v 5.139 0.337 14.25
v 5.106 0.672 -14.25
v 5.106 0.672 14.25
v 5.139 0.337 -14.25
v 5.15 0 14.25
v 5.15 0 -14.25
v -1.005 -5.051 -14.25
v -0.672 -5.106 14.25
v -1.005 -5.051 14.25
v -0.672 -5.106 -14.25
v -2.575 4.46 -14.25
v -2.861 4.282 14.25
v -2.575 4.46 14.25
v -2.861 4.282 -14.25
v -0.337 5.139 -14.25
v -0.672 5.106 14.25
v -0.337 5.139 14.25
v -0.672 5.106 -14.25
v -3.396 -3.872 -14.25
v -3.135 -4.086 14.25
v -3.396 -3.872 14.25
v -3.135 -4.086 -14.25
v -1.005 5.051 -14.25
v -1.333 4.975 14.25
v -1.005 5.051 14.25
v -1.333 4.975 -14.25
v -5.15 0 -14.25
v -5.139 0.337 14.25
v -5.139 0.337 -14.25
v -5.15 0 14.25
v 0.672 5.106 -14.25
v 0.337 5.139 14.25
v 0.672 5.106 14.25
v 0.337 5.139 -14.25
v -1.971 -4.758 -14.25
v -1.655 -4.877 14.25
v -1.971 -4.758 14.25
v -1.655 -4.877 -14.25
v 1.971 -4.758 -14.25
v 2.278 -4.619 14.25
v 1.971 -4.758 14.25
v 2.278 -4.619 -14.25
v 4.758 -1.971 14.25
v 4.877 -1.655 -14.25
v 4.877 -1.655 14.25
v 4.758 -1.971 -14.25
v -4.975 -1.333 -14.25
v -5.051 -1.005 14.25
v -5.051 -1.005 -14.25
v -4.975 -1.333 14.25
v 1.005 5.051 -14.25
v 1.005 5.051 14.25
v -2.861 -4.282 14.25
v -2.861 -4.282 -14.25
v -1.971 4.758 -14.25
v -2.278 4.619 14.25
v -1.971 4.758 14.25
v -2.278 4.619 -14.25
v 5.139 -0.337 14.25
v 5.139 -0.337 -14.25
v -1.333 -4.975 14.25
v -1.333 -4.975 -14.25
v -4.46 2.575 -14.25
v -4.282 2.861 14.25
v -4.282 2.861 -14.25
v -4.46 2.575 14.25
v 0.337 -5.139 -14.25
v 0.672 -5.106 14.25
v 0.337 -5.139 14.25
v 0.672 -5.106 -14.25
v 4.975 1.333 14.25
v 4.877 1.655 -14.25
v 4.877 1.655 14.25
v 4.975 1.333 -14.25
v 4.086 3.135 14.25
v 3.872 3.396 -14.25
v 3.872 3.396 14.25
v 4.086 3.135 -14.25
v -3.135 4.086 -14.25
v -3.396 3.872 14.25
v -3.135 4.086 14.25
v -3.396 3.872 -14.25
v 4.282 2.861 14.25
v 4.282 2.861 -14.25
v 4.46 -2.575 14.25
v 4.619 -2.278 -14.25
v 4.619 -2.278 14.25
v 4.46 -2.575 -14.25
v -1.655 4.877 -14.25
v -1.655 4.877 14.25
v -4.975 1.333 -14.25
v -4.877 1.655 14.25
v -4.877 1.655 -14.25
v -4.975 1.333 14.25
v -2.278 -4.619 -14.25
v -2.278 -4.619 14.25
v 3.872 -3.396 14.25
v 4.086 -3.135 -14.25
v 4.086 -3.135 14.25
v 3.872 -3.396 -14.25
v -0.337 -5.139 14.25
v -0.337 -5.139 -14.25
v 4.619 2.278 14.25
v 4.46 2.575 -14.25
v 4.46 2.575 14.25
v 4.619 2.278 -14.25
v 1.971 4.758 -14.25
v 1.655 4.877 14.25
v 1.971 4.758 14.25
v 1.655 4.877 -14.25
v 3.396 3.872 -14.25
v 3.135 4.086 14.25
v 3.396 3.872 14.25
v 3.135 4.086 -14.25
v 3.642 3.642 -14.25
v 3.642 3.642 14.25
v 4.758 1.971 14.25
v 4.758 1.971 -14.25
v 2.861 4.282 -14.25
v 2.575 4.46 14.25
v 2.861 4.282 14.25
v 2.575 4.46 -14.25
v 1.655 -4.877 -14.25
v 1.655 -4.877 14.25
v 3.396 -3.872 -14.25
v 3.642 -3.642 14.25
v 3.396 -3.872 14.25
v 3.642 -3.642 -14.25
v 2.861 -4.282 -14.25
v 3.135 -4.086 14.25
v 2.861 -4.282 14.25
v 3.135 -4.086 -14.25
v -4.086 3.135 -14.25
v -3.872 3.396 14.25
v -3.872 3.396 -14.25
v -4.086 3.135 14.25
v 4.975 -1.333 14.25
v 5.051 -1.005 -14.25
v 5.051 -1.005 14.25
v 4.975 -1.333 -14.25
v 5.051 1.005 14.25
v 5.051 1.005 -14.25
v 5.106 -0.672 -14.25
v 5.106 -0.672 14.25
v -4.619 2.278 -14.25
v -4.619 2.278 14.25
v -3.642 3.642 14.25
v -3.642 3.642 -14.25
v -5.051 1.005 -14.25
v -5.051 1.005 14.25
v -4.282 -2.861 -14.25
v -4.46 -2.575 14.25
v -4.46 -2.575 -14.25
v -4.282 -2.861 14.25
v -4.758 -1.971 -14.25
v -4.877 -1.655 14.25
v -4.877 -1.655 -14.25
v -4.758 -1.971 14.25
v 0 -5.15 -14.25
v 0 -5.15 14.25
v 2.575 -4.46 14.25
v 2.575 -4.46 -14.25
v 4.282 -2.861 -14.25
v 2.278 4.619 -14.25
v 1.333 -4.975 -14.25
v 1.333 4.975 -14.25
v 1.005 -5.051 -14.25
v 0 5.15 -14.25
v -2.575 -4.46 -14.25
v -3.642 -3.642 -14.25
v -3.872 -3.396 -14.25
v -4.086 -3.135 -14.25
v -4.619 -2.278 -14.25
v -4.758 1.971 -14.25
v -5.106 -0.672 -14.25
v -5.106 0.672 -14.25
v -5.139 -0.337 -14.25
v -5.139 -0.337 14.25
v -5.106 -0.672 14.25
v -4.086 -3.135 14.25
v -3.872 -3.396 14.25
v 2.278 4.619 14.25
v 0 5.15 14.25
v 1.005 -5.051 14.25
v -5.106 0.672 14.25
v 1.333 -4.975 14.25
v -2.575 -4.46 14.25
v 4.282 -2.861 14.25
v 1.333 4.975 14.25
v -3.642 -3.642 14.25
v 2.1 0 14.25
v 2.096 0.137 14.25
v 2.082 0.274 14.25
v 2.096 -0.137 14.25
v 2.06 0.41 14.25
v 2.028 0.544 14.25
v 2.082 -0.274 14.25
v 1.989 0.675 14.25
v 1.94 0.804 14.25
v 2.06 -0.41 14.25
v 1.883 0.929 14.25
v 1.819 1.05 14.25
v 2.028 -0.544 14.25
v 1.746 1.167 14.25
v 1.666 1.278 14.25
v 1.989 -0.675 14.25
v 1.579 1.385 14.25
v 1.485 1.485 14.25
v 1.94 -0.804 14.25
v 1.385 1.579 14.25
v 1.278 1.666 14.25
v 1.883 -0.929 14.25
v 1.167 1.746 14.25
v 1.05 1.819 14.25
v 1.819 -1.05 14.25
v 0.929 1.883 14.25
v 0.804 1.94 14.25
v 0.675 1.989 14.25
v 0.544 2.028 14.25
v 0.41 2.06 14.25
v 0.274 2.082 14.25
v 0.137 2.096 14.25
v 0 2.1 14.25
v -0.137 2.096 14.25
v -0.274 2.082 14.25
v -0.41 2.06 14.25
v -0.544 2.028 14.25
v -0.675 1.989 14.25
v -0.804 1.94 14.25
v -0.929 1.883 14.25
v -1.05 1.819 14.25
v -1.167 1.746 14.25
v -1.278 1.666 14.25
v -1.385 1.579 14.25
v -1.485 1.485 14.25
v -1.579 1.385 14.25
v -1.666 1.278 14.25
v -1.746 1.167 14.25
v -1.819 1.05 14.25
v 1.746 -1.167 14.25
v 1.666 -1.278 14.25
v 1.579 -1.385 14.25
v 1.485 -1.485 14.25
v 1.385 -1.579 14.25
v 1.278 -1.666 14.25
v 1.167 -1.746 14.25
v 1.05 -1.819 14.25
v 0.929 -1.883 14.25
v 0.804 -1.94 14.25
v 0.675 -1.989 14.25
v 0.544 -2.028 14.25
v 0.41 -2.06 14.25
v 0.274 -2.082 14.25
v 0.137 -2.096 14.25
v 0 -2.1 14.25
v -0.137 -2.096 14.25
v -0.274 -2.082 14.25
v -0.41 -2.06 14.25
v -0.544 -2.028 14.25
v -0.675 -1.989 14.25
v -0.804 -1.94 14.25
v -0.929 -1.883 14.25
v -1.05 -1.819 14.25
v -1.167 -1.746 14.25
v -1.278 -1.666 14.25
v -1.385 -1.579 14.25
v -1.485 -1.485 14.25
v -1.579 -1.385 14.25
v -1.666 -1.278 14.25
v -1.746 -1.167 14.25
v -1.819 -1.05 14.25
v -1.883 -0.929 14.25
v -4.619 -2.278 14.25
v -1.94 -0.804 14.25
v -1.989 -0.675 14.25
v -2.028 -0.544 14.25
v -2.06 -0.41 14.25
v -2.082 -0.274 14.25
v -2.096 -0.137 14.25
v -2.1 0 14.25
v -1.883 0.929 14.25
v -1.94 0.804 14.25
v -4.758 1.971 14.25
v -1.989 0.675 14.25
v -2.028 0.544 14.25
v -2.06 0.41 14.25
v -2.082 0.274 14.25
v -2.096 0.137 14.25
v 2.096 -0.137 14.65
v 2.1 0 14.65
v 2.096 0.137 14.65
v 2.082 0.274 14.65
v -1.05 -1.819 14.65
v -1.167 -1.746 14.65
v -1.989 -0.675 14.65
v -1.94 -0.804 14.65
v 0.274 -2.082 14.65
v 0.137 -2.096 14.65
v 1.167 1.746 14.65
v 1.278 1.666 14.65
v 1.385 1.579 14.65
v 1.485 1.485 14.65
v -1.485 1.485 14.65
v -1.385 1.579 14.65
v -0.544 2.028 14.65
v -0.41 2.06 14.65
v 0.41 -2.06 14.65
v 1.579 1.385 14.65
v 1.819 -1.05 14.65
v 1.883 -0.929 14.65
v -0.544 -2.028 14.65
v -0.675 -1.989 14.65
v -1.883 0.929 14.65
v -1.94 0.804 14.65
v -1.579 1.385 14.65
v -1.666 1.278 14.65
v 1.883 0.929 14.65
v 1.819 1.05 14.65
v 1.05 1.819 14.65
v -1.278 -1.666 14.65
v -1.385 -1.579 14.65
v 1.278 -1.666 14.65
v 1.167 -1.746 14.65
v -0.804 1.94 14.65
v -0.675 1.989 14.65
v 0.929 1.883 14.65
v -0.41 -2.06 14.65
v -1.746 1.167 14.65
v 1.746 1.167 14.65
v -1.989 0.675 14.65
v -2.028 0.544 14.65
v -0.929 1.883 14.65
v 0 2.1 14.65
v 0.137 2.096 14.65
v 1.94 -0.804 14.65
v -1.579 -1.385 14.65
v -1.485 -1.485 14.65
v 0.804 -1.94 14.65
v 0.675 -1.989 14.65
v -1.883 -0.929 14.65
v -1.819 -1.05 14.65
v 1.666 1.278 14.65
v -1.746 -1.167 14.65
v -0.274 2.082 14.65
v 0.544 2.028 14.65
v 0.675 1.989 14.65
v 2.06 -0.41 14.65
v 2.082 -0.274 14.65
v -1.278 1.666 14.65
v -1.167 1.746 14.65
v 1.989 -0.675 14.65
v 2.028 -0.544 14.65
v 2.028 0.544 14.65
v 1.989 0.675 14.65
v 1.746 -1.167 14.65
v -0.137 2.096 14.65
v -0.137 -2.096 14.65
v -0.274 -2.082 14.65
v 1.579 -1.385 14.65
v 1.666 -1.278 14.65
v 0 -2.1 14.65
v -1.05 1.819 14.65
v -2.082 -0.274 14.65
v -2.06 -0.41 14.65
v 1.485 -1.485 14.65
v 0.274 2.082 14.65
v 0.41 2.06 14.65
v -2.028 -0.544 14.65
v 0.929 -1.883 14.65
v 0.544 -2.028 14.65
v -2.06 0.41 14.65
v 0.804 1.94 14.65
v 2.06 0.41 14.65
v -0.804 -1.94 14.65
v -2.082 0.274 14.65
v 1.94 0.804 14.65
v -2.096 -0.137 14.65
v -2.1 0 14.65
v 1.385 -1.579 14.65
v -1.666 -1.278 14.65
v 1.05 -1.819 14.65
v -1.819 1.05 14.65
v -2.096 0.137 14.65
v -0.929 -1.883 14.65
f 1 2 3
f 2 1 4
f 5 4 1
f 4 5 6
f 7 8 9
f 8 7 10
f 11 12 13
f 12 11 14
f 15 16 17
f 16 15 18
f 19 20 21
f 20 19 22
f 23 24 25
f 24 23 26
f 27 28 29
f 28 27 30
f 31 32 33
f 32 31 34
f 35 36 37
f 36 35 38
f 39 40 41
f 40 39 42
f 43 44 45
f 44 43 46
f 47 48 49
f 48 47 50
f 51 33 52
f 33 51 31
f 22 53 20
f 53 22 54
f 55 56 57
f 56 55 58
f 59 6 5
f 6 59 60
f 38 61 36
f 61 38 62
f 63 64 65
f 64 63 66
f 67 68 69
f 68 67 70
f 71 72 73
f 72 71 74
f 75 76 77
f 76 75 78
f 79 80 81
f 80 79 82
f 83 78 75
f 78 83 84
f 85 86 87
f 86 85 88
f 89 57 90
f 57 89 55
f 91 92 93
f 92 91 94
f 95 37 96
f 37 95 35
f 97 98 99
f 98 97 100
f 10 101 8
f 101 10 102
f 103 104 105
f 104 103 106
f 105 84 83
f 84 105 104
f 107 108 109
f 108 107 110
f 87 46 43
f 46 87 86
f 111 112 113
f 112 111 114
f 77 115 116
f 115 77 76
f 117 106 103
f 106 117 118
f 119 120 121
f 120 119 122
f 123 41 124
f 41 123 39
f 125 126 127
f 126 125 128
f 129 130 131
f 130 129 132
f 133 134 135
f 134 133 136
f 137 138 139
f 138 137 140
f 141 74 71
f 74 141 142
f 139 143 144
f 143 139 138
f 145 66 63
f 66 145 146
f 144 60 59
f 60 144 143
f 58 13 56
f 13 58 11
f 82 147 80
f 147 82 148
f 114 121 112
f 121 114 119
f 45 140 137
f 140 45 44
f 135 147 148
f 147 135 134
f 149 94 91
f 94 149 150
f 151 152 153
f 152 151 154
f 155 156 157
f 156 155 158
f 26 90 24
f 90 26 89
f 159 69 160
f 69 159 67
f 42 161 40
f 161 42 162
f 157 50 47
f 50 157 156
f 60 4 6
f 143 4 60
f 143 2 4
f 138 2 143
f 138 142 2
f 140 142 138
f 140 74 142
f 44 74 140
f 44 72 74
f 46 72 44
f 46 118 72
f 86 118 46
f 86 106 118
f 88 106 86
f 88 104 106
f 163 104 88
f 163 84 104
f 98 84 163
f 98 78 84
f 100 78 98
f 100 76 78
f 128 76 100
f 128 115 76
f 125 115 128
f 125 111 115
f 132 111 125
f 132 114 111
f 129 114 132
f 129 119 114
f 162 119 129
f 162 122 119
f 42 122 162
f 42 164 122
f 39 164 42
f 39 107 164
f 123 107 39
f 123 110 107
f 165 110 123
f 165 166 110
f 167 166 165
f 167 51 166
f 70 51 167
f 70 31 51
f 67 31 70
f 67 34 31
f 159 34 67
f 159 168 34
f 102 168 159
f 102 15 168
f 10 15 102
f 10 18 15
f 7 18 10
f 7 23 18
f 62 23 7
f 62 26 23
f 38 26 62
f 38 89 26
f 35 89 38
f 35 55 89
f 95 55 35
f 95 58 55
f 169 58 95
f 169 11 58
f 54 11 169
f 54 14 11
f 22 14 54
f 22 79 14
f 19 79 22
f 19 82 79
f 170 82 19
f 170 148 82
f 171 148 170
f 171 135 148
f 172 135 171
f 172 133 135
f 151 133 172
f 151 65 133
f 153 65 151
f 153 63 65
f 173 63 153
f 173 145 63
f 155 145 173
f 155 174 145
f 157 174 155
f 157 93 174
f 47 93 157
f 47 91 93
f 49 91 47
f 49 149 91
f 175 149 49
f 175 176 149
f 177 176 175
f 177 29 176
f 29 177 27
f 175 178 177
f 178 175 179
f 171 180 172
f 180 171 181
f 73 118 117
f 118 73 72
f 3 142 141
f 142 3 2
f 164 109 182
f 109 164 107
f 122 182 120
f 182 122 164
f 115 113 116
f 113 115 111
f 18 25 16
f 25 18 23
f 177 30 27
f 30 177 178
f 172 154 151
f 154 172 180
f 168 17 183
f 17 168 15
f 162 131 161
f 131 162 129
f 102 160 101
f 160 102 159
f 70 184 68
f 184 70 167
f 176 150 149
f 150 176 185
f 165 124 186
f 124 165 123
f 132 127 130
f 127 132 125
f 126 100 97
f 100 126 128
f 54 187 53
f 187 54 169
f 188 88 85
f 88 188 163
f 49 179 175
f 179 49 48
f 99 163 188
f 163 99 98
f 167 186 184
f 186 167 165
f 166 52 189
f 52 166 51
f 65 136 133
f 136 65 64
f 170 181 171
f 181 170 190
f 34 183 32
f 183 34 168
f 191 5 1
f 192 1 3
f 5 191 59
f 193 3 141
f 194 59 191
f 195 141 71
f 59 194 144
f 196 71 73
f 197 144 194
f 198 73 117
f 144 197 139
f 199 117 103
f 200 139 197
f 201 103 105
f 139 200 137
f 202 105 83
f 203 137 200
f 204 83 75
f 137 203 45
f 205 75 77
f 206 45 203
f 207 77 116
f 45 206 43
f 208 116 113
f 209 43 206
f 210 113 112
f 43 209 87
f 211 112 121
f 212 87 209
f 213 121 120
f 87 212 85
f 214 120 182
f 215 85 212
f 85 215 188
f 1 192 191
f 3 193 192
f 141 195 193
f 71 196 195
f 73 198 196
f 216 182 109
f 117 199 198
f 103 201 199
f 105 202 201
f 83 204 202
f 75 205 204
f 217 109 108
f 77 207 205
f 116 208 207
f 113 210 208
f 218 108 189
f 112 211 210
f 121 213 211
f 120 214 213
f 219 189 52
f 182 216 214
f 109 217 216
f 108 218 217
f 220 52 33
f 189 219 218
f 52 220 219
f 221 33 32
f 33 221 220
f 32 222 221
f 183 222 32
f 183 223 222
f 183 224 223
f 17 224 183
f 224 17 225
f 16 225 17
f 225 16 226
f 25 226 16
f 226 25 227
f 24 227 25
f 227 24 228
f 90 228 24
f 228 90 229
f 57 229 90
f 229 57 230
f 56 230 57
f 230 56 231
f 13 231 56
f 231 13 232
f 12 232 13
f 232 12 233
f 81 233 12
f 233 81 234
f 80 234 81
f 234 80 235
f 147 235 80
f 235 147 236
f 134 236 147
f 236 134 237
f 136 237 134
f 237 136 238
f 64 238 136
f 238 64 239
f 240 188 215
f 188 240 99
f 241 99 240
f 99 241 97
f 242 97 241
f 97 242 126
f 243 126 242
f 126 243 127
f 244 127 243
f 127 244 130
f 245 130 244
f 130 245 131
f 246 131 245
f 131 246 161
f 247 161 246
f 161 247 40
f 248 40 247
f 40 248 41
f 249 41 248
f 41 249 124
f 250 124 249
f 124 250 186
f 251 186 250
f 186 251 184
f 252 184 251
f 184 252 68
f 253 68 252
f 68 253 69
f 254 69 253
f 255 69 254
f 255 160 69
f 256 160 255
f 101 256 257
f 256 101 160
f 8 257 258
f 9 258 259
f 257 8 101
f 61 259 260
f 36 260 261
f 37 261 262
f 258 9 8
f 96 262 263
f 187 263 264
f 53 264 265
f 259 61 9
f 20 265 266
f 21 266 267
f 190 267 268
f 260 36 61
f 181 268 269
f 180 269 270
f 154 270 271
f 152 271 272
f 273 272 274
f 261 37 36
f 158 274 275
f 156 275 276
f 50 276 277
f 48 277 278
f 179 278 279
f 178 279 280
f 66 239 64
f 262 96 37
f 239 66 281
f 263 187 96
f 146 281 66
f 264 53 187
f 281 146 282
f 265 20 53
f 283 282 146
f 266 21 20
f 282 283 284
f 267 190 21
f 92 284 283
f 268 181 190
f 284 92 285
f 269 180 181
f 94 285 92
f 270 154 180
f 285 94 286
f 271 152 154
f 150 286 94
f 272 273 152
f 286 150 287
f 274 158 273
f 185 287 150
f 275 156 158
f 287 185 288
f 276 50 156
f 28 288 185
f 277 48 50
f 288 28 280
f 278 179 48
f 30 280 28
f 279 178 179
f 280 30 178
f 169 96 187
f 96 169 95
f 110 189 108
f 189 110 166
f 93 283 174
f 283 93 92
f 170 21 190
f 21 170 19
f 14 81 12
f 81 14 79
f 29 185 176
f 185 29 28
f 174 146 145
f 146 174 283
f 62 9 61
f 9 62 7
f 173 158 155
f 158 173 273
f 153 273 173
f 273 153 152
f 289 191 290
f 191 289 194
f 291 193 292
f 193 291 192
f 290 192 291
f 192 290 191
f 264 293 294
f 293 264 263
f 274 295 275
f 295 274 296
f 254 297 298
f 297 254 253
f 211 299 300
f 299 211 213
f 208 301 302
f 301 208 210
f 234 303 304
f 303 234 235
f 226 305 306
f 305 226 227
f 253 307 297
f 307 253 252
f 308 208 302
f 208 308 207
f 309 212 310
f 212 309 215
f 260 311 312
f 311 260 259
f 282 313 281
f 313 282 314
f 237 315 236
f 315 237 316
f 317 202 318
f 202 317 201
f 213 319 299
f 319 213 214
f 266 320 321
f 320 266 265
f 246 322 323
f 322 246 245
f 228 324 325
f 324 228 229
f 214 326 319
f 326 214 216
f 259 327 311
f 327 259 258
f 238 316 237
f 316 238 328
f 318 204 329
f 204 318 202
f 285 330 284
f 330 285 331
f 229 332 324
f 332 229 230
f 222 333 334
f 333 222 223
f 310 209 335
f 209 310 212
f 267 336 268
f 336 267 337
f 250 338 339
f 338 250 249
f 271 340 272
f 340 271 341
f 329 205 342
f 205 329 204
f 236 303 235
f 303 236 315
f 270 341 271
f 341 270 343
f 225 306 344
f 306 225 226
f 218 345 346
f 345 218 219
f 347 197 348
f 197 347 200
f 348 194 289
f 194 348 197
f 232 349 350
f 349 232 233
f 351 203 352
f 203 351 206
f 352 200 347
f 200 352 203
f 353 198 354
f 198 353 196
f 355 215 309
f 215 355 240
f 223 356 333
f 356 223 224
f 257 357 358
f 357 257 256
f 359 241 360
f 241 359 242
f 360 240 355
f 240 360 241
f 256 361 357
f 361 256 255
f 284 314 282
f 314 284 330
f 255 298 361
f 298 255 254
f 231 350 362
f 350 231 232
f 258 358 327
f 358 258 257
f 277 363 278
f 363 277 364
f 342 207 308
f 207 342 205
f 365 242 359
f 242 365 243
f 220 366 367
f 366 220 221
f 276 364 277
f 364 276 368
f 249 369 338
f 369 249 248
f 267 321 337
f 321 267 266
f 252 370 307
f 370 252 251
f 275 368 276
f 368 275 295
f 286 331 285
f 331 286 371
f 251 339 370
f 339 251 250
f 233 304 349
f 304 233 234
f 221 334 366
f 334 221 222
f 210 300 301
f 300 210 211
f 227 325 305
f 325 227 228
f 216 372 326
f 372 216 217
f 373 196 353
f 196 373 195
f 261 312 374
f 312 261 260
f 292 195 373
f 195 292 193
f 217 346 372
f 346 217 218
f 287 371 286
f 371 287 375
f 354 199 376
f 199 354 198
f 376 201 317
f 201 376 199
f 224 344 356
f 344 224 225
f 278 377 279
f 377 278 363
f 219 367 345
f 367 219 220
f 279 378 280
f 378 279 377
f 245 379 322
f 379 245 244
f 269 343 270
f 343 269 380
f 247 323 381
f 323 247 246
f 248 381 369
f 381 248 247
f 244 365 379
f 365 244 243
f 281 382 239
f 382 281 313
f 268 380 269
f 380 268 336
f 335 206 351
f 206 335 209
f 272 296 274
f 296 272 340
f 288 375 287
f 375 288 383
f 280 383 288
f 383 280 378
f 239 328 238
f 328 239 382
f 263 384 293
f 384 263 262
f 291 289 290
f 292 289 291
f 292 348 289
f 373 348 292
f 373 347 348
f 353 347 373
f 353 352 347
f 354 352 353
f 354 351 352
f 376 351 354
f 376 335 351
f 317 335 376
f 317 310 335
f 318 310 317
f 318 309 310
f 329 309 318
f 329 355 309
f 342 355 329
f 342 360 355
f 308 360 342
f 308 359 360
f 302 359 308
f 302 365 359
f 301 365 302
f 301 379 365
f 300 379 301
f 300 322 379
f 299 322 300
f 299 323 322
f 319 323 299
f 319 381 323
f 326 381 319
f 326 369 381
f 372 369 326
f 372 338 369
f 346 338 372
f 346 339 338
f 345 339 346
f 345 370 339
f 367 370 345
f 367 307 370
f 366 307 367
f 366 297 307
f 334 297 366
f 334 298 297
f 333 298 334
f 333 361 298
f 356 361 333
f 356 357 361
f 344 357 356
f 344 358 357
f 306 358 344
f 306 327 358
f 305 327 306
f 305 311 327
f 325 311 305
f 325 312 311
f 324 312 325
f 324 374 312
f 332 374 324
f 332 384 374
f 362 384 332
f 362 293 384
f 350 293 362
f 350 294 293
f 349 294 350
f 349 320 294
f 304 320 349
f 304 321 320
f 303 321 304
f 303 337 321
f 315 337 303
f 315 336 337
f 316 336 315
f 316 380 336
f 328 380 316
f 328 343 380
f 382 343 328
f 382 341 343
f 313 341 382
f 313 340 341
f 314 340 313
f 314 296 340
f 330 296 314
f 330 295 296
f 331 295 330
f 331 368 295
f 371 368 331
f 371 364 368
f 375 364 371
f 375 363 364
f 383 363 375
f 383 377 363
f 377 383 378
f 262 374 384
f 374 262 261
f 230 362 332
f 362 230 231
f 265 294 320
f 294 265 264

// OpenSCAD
$fn = 96;

module battery(d=10.3, h=28.5) {
    union() {
        cylinder(d=d, h=h, center=true);
        translate([0,0,h/2 + 0.4/2]) cylinder(d=4.2, h=0.4, center=true); // positive nub
    }
}

battery();
